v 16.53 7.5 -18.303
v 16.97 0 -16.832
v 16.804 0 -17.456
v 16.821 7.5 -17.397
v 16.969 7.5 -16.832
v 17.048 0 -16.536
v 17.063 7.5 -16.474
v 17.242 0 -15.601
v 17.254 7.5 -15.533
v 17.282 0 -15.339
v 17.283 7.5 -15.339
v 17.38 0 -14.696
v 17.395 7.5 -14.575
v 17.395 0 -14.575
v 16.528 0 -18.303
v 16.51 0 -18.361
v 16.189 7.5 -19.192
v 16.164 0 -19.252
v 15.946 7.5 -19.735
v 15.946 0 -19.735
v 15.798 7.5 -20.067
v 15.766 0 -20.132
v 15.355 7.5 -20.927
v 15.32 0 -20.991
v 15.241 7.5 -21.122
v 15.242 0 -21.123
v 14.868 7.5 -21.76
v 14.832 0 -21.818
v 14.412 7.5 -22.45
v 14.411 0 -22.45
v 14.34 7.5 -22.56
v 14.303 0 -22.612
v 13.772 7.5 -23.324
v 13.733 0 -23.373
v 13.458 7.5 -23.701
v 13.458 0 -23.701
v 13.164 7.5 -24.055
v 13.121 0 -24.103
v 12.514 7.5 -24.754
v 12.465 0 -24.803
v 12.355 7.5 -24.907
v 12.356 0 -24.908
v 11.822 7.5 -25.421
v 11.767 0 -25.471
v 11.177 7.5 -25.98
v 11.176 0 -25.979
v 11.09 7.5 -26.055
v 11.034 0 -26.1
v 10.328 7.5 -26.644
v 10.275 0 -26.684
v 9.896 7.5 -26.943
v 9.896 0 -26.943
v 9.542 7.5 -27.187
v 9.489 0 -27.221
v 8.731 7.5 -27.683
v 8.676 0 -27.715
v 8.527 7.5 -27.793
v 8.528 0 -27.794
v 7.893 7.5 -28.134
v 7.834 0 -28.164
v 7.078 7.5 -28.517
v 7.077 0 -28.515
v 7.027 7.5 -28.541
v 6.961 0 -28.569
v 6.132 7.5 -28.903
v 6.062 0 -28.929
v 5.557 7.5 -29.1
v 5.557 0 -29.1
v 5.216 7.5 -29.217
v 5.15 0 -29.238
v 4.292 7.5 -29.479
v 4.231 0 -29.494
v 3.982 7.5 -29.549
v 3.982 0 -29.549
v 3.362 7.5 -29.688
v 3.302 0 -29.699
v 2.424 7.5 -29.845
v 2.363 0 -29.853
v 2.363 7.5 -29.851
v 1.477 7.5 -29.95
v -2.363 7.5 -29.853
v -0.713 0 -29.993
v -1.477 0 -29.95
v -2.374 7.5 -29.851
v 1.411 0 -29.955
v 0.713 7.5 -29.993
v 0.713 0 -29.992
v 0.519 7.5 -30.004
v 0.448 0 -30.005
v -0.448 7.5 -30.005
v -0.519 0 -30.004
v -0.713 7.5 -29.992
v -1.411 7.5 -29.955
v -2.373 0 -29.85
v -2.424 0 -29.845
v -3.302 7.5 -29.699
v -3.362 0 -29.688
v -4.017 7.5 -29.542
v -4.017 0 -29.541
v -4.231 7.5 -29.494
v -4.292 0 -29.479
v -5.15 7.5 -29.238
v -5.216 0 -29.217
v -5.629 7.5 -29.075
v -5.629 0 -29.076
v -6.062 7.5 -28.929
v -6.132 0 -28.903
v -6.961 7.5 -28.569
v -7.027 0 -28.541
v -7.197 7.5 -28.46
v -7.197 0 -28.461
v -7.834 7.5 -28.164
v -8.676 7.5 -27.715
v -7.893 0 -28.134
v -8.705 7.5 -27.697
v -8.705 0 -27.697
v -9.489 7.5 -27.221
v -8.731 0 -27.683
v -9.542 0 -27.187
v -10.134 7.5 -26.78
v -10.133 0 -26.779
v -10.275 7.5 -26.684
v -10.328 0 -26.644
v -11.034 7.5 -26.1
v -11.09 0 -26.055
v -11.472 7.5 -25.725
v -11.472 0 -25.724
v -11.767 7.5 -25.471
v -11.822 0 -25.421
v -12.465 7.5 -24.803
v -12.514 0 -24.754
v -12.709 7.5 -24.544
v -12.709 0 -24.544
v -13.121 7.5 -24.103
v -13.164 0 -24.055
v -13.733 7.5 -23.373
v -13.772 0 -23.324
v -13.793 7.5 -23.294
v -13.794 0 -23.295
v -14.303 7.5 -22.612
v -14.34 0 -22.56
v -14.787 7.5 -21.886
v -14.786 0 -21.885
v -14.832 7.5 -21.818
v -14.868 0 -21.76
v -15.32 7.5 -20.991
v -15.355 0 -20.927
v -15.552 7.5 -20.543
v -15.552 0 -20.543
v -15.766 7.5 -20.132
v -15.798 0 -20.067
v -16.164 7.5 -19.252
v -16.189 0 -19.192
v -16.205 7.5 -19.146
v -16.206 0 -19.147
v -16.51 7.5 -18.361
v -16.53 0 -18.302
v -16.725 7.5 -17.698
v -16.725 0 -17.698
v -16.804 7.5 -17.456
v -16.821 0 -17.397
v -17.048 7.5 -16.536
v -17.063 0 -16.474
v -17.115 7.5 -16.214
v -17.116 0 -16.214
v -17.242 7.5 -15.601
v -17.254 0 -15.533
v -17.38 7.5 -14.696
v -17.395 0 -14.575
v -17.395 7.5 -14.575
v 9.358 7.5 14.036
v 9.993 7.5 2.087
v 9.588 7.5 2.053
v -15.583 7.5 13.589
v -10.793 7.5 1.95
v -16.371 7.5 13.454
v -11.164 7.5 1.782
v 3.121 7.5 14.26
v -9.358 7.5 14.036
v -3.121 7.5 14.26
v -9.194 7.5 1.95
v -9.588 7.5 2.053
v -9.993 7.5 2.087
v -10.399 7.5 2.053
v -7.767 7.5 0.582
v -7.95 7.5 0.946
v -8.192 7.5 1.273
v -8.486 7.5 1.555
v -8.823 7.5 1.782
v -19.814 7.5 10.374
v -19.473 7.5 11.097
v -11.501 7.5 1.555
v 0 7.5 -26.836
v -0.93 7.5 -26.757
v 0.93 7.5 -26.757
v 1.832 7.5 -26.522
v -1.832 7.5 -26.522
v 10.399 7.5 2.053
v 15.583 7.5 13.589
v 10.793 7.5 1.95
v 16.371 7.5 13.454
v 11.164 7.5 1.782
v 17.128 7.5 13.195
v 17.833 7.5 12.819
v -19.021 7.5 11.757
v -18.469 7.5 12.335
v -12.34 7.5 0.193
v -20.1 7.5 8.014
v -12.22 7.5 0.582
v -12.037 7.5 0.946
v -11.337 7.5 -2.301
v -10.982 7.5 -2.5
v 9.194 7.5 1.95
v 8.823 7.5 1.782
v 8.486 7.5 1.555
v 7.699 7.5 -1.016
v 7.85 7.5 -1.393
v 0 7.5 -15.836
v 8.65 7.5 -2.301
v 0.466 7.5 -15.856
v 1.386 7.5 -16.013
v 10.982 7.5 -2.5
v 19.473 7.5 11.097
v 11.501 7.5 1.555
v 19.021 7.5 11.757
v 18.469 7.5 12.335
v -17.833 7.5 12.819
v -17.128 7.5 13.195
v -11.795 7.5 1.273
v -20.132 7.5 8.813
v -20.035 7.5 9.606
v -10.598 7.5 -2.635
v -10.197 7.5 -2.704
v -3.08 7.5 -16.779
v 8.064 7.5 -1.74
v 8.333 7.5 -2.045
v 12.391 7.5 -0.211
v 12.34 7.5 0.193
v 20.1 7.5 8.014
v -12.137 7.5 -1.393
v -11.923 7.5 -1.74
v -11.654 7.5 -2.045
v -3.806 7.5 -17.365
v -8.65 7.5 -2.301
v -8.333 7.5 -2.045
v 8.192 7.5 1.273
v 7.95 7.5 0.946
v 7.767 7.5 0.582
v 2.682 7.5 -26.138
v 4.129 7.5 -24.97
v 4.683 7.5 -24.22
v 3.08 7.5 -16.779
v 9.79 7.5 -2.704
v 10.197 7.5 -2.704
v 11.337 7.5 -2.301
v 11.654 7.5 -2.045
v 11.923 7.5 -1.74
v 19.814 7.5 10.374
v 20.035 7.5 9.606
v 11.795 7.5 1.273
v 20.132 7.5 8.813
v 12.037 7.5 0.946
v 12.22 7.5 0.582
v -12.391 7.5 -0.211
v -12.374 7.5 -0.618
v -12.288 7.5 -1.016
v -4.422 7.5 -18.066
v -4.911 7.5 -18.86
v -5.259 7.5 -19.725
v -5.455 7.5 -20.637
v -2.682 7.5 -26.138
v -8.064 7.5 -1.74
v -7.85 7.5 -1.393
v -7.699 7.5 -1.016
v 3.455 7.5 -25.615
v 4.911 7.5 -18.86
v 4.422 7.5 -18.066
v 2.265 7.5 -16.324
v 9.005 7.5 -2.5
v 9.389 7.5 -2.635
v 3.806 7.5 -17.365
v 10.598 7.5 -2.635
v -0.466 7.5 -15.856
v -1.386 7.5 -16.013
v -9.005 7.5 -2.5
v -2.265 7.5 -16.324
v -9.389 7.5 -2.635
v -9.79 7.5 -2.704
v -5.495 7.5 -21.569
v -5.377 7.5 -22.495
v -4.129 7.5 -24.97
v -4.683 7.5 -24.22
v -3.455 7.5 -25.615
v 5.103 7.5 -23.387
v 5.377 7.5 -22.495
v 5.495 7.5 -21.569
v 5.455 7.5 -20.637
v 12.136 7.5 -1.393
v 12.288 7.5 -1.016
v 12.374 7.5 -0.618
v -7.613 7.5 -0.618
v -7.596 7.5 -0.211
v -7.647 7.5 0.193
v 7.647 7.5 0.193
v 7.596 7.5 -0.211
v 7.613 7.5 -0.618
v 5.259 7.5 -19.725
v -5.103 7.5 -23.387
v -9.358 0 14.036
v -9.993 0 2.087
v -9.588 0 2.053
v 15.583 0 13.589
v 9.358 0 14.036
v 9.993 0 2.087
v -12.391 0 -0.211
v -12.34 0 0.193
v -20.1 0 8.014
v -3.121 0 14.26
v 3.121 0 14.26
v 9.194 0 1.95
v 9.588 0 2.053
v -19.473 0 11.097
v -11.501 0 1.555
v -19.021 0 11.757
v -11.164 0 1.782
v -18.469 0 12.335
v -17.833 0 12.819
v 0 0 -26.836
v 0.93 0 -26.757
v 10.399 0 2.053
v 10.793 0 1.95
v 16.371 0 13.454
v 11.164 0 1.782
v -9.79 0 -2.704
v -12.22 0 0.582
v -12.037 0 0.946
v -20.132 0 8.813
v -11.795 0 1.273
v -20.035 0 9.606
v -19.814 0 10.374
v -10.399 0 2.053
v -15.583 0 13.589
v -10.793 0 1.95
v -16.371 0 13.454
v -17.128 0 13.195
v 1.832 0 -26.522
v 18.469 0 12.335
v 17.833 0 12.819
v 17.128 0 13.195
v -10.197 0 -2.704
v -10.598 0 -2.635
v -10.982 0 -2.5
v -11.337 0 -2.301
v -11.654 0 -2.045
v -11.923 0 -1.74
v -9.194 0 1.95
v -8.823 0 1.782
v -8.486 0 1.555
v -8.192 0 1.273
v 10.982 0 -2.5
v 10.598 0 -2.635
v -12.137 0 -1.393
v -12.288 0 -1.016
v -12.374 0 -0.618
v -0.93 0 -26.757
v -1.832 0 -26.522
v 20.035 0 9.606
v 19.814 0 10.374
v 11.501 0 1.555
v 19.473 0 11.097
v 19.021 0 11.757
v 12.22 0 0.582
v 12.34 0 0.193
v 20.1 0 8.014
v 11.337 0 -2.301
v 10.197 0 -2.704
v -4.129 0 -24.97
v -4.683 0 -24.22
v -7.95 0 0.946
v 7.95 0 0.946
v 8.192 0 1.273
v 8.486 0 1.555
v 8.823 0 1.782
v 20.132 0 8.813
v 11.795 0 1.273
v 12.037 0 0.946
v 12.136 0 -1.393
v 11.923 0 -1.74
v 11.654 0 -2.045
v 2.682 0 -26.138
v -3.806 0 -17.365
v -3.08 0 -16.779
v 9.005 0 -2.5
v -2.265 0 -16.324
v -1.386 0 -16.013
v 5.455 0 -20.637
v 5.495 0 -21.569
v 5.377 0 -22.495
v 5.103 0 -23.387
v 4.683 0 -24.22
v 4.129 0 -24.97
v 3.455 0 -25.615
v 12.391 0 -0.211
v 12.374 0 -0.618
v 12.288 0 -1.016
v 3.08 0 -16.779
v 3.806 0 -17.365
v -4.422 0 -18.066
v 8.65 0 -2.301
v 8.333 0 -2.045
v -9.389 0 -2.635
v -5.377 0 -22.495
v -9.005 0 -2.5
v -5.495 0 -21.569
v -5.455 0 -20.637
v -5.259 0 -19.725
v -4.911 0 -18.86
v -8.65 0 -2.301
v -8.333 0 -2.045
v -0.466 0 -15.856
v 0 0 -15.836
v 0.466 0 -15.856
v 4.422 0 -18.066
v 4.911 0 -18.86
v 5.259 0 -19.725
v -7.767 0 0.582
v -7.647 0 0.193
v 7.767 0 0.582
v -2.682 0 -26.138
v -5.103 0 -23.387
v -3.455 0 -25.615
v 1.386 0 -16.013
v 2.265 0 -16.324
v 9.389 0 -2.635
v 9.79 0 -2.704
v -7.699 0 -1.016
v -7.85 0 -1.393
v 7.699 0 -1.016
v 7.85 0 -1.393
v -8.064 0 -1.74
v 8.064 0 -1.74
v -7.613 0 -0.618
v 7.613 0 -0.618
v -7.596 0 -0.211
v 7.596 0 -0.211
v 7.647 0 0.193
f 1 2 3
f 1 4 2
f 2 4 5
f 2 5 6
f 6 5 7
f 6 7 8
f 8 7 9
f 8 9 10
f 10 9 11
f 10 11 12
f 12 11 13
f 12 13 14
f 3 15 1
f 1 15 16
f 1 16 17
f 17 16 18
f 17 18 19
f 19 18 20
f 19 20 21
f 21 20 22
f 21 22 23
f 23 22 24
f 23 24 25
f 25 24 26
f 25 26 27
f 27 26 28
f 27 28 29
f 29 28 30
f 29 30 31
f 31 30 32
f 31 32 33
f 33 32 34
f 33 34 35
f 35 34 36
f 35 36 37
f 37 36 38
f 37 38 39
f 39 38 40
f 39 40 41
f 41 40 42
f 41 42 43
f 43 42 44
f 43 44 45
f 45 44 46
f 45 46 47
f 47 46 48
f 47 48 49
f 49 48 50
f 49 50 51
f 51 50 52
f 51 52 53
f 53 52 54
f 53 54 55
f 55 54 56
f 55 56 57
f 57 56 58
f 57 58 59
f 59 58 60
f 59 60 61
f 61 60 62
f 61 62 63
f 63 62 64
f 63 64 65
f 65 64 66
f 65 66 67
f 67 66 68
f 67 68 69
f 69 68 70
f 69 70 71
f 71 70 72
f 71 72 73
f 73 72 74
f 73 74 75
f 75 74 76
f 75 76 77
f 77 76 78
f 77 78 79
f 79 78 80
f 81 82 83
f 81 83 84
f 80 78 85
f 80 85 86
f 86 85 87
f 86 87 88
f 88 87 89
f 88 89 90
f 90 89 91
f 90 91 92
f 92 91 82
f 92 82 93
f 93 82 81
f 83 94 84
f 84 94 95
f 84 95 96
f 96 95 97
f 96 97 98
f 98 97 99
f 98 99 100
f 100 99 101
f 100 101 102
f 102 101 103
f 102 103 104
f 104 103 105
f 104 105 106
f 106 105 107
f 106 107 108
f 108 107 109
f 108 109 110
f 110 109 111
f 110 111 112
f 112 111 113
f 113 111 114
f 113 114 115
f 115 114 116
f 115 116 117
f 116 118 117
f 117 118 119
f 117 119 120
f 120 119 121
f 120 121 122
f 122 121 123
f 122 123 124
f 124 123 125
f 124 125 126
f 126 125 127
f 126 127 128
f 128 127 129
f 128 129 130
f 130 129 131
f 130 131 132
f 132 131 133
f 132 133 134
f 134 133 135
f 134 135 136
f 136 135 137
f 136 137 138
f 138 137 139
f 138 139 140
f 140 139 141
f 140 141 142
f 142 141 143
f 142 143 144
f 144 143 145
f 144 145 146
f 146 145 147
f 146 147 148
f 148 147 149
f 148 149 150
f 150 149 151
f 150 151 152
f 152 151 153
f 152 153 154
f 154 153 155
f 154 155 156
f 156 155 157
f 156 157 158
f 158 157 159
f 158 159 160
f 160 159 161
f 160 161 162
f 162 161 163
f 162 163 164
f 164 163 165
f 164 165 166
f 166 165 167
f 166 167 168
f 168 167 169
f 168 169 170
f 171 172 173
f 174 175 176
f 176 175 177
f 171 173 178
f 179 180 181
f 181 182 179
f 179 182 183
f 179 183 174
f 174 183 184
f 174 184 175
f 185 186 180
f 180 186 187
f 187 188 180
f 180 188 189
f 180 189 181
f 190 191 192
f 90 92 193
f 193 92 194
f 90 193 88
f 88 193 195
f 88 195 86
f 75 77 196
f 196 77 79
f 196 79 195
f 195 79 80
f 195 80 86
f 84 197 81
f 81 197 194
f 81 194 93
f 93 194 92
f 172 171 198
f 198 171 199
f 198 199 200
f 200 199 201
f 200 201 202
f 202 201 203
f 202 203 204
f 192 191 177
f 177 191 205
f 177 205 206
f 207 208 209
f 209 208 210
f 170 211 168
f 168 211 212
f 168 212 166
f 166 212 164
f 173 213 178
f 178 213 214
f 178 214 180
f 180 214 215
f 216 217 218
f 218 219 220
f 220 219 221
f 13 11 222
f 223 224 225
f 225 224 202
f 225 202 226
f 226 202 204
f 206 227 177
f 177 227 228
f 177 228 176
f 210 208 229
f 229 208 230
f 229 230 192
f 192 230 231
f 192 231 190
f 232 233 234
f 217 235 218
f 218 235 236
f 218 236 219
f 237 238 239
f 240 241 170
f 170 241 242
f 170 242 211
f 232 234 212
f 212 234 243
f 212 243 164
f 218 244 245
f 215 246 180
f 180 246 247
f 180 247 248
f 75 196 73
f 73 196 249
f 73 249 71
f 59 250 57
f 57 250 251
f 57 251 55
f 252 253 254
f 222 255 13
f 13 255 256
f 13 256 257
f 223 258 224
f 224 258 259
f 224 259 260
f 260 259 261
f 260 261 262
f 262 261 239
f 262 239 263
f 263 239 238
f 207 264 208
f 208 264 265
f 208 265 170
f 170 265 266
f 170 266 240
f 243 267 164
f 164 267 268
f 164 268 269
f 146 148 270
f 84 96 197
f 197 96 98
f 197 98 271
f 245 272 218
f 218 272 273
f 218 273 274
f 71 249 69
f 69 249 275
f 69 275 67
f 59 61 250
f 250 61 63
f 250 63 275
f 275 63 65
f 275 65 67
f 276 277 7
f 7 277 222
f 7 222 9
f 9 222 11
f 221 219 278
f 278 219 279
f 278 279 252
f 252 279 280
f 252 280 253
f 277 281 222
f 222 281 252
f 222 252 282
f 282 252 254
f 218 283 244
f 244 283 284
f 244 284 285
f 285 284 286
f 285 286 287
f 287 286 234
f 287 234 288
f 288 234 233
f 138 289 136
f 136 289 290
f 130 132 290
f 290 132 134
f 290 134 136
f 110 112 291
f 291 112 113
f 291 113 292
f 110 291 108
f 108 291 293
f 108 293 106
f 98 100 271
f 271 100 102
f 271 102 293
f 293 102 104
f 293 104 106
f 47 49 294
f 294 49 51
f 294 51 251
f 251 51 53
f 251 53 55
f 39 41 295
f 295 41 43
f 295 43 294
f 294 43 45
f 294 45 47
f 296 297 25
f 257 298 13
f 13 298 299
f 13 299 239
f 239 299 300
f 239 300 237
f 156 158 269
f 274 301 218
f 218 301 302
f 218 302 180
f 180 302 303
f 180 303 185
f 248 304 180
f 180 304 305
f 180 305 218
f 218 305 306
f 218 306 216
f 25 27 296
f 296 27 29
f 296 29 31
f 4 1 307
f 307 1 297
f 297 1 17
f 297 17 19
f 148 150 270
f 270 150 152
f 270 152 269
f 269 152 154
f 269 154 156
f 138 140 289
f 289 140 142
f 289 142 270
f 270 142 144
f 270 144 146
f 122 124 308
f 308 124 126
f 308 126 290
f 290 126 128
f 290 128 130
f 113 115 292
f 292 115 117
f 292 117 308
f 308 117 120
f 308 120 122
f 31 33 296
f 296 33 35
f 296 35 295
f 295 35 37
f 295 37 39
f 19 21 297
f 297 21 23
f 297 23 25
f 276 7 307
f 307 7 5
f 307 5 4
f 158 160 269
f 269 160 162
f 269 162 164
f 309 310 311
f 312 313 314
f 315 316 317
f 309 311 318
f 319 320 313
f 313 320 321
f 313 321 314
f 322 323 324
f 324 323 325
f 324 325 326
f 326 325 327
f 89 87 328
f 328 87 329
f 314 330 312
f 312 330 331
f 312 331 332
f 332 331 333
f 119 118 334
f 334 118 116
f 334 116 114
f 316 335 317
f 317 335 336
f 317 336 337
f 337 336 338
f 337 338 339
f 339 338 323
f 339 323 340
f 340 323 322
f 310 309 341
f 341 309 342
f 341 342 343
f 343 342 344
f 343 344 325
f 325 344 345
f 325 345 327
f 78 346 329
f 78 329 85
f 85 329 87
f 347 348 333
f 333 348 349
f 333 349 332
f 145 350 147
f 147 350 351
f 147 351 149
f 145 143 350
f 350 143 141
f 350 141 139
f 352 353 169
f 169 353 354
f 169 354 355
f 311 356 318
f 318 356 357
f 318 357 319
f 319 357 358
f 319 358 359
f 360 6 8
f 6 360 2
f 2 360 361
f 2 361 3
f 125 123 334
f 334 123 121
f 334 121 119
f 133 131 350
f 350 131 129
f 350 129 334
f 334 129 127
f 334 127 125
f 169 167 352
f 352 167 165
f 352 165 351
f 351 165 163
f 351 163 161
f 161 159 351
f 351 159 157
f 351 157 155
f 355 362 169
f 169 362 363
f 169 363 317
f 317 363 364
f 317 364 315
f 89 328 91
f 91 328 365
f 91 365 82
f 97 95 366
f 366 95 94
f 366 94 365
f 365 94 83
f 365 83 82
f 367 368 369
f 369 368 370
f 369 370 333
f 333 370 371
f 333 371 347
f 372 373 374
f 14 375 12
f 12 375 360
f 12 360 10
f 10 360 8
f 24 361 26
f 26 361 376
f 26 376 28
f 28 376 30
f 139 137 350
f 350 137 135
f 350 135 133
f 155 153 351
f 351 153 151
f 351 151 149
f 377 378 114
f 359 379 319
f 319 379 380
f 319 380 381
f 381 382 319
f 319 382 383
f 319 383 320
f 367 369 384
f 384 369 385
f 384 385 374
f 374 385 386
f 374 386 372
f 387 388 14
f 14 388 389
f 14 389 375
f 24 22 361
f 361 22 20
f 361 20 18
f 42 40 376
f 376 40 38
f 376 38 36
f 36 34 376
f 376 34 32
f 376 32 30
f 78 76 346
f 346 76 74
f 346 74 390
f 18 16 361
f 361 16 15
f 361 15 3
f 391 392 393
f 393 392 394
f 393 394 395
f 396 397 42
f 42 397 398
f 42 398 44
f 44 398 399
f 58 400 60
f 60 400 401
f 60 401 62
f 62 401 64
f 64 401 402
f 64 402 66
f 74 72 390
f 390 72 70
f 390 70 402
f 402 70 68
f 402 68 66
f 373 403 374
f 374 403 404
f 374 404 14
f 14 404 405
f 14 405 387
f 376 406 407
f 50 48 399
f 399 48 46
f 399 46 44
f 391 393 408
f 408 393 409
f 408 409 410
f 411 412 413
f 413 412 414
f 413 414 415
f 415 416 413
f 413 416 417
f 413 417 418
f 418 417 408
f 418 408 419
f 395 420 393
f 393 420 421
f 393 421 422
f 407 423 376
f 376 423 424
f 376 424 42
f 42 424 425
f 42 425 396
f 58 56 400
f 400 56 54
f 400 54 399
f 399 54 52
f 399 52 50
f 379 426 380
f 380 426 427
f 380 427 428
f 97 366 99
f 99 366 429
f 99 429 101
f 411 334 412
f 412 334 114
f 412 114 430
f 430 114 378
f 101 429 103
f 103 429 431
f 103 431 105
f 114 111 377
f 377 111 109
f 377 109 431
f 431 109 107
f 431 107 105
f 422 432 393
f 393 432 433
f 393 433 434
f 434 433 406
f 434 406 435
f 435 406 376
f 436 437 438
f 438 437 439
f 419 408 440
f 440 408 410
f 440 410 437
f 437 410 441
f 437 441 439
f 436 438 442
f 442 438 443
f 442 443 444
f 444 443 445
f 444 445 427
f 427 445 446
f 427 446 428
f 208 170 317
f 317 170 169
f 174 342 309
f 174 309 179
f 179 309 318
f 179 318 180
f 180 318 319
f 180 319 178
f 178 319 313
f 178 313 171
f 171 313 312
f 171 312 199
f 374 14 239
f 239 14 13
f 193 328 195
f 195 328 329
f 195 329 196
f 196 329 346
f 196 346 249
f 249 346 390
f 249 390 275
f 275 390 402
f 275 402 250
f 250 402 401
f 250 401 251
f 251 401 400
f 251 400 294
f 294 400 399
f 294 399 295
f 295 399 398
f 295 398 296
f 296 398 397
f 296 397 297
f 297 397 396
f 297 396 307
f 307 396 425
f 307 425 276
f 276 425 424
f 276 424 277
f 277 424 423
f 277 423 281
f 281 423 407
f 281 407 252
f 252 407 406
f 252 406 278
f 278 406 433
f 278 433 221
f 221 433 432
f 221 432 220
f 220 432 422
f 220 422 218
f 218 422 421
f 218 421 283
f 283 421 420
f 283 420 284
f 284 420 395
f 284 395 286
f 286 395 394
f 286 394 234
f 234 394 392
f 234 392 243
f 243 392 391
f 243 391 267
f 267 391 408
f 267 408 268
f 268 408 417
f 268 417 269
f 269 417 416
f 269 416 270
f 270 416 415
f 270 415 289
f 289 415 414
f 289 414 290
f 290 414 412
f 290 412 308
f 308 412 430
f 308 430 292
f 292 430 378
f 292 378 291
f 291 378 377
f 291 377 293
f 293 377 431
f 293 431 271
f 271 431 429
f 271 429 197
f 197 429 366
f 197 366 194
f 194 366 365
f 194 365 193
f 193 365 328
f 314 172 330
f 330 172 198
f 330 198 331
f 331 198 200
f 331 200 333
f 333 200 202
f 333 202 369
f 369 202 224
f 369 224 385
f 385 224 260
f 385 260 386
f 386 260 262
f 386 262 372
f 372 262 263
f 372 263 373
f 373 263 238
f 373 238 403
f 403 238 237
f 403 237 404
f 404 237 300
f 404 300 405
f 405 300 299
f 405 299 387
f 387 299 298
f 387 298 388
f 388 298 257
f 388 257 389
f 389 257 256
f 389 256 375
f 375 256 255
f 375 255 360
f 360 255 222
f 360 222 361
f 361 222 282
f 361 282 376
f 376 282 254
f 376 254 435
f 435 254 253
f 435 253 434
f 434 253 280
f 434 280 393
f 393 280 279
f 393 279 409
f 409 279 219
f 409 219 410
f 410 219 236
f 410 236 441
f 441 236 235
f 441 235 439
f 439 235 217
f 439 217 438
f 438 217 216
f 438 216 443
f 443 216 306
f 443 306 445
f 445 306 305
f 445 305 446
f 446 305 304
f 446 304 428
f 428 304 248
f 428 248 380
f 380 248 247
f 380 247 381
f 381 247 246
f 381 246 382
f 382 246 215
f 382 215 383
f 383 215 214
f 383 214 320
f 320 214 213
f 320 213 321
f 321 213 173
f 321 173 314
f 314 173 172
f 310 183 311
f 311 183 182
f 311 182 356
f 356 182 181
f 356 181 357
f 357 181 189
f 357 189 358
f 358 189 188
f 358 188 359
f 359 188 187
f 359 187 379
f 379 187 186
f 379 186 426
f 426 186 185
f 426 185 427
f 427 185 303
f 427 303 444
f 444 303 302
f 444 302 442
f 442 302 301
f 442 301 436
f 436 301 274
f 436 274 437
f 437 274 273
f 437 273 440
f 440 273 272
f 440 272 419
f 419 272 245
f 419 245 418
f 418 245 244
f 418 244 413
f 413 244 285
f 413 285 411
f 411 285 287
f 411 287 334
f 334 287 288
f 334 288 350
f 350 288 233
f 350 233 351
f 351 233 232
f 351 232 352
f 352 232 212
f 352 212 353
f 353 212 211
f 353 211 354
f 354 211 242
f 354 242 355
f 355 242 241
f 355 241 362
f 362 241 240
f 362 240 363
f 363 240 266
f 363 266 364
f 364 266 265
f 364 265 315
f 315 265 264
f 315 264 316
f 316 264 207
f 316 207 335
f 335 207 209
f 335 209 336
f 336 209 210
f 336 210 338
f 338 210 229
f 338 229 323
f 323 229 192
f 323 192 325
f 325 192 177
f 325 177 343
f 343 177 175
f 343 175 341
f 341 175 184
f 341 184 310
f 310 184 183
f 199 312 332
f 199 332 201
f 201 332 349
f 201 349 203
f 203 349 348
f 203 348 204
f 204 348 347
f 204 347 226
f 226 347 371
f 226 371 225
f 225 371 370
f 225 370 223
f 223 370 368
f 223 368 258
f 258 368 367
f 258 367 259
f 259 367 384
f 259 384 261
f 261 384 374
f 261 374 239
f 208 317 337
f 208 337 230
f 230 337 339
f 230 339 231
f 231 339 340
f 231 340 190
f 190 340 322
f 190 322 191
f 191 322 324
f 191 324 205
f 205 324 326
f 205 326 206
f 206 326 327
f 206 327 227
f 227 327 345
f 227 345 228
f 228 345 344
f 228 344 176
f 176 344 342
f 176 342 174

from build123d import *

# Parameters (mm, degrees)
SKETCH1_R            = 5.5
BOSS_EXTRUDE1_DEPTH  = 7.5
FILLET1_START        = -1
FILLET1_DEPTH        = 9
M4_CLEARANCE_HOLE1_D = 4.8
FILLET2_R            = 5


with BuildPart() as part:
    # Sketch1 → Boss-Extrude1 (new body)
    with BuildSketch(Plane(origin=(0, 0, 0), x_dir=(1, 0, 0), z_dir=(0, 1, 0))):
        with BuildLine():
            Line((-17.306036515, 15.320071712), (-20.703818553, -13.05219824))
            ThreePointArc((-20.703818553, -13.05219824), (0, -14.2875), (20.703818553, -13.05219824))
            Line((20.703818553, -13.05219824), (17.306036515, 15.320071712))
            Line((17.306036515, 15.320071712), (15.436394314, 30.932018749))
            ThreePointArc((15.436394314, 30.932018749), (0, 30.011), (-15.436394314, 30.932018749))
            Line((-15.436394314, 30.932018749), (-17.306036515, 15.320071712))
        make_face()
        with Locations(Location((0, 21.336, 0), (0, 0, 270))):
            Circle(SKETCH1_R, mode=Mode.SUBTRACT)
    extrude(amount=BOSS_EXTRUDE1_DEPTH)

    # Fillet1: read off the stored shape, not the designer's step
    # Fillet1 outline → Fillet1 (cut)
    with BuildSketch(Plane(origin=(0, 0, 0), x_dir=(1, 0, 0), z_dir=(0, 1, 0)).offset(FILLET1_START)):
        with BuildLine():
            Line((-15.436394314, 30.932018749), (-17.395311398, 14.574605686))
            add(Edge.make_bspline(
                [(-17.395311398, 14.574605686), (-16.419132346, 22.72592771), (-10.364461962, 30.010999958), (-7.1e-08, 30.011)],
                knots=[0, 0, 0, 0, 0.499999999, 0.499999999, 0.499999999, 0.499999999], degree=3, weights=[1, 0.706302503, 0.559453755, 0.559453754]))
            ThreePointArc((-7.1e-08, 30.011), (-7.731923227, 30.24145925), (-15.436394314, 30.932018749))
        make_face()
        with BuildLine():
            ThreePointArc((15.436394314, 30.932018749), (7.731923156, 30.241459246), (-7.1e-08, 30.011))
            add(Edge.make_bspline(
                [(-7.1e-08, 30.011), (10.364461892, 30.011000042), (16.41913234, 22.725927763), (17.395311398, 14.574605686)],
                knots=[0.499999999, 0.499999999, 0.499999999, 0.499999999, 1, 1, 1, 1], degree=3, weights=[0.559453754, 0.559453753, 0.706302502, 1]))
            Line((17.395311398, 14.574605686), (15.436394314, 30.932018749))
        make_face()
    extrude(amount=FILLET1_DEPTH, mode=Mode.SUBTRACT)

    # M4 Clearance Hole1 (through all)
    with Locations(Plane(origin=(0, 7.5, 0), x_dir=(1, 0, 0), z_dir=(0, 1, 0))):
        with Locations((-9.993476963, 0.312731325), (9.993476963, 0.312731325)):
            Hole(M4_CLEARANCE_HOLE1_D / 2)

    # Fillet2
    fillet2_edges = [part.edges().sort_by_distance(p)[0] for p in [
        (20.703818553, 3.75, 13.05219824),
        (-20.703818553, 3.75, 13.05219824),
    ]]
    fillet(fillet2_edges, radius=FILLET2_R)


solid = part.part
